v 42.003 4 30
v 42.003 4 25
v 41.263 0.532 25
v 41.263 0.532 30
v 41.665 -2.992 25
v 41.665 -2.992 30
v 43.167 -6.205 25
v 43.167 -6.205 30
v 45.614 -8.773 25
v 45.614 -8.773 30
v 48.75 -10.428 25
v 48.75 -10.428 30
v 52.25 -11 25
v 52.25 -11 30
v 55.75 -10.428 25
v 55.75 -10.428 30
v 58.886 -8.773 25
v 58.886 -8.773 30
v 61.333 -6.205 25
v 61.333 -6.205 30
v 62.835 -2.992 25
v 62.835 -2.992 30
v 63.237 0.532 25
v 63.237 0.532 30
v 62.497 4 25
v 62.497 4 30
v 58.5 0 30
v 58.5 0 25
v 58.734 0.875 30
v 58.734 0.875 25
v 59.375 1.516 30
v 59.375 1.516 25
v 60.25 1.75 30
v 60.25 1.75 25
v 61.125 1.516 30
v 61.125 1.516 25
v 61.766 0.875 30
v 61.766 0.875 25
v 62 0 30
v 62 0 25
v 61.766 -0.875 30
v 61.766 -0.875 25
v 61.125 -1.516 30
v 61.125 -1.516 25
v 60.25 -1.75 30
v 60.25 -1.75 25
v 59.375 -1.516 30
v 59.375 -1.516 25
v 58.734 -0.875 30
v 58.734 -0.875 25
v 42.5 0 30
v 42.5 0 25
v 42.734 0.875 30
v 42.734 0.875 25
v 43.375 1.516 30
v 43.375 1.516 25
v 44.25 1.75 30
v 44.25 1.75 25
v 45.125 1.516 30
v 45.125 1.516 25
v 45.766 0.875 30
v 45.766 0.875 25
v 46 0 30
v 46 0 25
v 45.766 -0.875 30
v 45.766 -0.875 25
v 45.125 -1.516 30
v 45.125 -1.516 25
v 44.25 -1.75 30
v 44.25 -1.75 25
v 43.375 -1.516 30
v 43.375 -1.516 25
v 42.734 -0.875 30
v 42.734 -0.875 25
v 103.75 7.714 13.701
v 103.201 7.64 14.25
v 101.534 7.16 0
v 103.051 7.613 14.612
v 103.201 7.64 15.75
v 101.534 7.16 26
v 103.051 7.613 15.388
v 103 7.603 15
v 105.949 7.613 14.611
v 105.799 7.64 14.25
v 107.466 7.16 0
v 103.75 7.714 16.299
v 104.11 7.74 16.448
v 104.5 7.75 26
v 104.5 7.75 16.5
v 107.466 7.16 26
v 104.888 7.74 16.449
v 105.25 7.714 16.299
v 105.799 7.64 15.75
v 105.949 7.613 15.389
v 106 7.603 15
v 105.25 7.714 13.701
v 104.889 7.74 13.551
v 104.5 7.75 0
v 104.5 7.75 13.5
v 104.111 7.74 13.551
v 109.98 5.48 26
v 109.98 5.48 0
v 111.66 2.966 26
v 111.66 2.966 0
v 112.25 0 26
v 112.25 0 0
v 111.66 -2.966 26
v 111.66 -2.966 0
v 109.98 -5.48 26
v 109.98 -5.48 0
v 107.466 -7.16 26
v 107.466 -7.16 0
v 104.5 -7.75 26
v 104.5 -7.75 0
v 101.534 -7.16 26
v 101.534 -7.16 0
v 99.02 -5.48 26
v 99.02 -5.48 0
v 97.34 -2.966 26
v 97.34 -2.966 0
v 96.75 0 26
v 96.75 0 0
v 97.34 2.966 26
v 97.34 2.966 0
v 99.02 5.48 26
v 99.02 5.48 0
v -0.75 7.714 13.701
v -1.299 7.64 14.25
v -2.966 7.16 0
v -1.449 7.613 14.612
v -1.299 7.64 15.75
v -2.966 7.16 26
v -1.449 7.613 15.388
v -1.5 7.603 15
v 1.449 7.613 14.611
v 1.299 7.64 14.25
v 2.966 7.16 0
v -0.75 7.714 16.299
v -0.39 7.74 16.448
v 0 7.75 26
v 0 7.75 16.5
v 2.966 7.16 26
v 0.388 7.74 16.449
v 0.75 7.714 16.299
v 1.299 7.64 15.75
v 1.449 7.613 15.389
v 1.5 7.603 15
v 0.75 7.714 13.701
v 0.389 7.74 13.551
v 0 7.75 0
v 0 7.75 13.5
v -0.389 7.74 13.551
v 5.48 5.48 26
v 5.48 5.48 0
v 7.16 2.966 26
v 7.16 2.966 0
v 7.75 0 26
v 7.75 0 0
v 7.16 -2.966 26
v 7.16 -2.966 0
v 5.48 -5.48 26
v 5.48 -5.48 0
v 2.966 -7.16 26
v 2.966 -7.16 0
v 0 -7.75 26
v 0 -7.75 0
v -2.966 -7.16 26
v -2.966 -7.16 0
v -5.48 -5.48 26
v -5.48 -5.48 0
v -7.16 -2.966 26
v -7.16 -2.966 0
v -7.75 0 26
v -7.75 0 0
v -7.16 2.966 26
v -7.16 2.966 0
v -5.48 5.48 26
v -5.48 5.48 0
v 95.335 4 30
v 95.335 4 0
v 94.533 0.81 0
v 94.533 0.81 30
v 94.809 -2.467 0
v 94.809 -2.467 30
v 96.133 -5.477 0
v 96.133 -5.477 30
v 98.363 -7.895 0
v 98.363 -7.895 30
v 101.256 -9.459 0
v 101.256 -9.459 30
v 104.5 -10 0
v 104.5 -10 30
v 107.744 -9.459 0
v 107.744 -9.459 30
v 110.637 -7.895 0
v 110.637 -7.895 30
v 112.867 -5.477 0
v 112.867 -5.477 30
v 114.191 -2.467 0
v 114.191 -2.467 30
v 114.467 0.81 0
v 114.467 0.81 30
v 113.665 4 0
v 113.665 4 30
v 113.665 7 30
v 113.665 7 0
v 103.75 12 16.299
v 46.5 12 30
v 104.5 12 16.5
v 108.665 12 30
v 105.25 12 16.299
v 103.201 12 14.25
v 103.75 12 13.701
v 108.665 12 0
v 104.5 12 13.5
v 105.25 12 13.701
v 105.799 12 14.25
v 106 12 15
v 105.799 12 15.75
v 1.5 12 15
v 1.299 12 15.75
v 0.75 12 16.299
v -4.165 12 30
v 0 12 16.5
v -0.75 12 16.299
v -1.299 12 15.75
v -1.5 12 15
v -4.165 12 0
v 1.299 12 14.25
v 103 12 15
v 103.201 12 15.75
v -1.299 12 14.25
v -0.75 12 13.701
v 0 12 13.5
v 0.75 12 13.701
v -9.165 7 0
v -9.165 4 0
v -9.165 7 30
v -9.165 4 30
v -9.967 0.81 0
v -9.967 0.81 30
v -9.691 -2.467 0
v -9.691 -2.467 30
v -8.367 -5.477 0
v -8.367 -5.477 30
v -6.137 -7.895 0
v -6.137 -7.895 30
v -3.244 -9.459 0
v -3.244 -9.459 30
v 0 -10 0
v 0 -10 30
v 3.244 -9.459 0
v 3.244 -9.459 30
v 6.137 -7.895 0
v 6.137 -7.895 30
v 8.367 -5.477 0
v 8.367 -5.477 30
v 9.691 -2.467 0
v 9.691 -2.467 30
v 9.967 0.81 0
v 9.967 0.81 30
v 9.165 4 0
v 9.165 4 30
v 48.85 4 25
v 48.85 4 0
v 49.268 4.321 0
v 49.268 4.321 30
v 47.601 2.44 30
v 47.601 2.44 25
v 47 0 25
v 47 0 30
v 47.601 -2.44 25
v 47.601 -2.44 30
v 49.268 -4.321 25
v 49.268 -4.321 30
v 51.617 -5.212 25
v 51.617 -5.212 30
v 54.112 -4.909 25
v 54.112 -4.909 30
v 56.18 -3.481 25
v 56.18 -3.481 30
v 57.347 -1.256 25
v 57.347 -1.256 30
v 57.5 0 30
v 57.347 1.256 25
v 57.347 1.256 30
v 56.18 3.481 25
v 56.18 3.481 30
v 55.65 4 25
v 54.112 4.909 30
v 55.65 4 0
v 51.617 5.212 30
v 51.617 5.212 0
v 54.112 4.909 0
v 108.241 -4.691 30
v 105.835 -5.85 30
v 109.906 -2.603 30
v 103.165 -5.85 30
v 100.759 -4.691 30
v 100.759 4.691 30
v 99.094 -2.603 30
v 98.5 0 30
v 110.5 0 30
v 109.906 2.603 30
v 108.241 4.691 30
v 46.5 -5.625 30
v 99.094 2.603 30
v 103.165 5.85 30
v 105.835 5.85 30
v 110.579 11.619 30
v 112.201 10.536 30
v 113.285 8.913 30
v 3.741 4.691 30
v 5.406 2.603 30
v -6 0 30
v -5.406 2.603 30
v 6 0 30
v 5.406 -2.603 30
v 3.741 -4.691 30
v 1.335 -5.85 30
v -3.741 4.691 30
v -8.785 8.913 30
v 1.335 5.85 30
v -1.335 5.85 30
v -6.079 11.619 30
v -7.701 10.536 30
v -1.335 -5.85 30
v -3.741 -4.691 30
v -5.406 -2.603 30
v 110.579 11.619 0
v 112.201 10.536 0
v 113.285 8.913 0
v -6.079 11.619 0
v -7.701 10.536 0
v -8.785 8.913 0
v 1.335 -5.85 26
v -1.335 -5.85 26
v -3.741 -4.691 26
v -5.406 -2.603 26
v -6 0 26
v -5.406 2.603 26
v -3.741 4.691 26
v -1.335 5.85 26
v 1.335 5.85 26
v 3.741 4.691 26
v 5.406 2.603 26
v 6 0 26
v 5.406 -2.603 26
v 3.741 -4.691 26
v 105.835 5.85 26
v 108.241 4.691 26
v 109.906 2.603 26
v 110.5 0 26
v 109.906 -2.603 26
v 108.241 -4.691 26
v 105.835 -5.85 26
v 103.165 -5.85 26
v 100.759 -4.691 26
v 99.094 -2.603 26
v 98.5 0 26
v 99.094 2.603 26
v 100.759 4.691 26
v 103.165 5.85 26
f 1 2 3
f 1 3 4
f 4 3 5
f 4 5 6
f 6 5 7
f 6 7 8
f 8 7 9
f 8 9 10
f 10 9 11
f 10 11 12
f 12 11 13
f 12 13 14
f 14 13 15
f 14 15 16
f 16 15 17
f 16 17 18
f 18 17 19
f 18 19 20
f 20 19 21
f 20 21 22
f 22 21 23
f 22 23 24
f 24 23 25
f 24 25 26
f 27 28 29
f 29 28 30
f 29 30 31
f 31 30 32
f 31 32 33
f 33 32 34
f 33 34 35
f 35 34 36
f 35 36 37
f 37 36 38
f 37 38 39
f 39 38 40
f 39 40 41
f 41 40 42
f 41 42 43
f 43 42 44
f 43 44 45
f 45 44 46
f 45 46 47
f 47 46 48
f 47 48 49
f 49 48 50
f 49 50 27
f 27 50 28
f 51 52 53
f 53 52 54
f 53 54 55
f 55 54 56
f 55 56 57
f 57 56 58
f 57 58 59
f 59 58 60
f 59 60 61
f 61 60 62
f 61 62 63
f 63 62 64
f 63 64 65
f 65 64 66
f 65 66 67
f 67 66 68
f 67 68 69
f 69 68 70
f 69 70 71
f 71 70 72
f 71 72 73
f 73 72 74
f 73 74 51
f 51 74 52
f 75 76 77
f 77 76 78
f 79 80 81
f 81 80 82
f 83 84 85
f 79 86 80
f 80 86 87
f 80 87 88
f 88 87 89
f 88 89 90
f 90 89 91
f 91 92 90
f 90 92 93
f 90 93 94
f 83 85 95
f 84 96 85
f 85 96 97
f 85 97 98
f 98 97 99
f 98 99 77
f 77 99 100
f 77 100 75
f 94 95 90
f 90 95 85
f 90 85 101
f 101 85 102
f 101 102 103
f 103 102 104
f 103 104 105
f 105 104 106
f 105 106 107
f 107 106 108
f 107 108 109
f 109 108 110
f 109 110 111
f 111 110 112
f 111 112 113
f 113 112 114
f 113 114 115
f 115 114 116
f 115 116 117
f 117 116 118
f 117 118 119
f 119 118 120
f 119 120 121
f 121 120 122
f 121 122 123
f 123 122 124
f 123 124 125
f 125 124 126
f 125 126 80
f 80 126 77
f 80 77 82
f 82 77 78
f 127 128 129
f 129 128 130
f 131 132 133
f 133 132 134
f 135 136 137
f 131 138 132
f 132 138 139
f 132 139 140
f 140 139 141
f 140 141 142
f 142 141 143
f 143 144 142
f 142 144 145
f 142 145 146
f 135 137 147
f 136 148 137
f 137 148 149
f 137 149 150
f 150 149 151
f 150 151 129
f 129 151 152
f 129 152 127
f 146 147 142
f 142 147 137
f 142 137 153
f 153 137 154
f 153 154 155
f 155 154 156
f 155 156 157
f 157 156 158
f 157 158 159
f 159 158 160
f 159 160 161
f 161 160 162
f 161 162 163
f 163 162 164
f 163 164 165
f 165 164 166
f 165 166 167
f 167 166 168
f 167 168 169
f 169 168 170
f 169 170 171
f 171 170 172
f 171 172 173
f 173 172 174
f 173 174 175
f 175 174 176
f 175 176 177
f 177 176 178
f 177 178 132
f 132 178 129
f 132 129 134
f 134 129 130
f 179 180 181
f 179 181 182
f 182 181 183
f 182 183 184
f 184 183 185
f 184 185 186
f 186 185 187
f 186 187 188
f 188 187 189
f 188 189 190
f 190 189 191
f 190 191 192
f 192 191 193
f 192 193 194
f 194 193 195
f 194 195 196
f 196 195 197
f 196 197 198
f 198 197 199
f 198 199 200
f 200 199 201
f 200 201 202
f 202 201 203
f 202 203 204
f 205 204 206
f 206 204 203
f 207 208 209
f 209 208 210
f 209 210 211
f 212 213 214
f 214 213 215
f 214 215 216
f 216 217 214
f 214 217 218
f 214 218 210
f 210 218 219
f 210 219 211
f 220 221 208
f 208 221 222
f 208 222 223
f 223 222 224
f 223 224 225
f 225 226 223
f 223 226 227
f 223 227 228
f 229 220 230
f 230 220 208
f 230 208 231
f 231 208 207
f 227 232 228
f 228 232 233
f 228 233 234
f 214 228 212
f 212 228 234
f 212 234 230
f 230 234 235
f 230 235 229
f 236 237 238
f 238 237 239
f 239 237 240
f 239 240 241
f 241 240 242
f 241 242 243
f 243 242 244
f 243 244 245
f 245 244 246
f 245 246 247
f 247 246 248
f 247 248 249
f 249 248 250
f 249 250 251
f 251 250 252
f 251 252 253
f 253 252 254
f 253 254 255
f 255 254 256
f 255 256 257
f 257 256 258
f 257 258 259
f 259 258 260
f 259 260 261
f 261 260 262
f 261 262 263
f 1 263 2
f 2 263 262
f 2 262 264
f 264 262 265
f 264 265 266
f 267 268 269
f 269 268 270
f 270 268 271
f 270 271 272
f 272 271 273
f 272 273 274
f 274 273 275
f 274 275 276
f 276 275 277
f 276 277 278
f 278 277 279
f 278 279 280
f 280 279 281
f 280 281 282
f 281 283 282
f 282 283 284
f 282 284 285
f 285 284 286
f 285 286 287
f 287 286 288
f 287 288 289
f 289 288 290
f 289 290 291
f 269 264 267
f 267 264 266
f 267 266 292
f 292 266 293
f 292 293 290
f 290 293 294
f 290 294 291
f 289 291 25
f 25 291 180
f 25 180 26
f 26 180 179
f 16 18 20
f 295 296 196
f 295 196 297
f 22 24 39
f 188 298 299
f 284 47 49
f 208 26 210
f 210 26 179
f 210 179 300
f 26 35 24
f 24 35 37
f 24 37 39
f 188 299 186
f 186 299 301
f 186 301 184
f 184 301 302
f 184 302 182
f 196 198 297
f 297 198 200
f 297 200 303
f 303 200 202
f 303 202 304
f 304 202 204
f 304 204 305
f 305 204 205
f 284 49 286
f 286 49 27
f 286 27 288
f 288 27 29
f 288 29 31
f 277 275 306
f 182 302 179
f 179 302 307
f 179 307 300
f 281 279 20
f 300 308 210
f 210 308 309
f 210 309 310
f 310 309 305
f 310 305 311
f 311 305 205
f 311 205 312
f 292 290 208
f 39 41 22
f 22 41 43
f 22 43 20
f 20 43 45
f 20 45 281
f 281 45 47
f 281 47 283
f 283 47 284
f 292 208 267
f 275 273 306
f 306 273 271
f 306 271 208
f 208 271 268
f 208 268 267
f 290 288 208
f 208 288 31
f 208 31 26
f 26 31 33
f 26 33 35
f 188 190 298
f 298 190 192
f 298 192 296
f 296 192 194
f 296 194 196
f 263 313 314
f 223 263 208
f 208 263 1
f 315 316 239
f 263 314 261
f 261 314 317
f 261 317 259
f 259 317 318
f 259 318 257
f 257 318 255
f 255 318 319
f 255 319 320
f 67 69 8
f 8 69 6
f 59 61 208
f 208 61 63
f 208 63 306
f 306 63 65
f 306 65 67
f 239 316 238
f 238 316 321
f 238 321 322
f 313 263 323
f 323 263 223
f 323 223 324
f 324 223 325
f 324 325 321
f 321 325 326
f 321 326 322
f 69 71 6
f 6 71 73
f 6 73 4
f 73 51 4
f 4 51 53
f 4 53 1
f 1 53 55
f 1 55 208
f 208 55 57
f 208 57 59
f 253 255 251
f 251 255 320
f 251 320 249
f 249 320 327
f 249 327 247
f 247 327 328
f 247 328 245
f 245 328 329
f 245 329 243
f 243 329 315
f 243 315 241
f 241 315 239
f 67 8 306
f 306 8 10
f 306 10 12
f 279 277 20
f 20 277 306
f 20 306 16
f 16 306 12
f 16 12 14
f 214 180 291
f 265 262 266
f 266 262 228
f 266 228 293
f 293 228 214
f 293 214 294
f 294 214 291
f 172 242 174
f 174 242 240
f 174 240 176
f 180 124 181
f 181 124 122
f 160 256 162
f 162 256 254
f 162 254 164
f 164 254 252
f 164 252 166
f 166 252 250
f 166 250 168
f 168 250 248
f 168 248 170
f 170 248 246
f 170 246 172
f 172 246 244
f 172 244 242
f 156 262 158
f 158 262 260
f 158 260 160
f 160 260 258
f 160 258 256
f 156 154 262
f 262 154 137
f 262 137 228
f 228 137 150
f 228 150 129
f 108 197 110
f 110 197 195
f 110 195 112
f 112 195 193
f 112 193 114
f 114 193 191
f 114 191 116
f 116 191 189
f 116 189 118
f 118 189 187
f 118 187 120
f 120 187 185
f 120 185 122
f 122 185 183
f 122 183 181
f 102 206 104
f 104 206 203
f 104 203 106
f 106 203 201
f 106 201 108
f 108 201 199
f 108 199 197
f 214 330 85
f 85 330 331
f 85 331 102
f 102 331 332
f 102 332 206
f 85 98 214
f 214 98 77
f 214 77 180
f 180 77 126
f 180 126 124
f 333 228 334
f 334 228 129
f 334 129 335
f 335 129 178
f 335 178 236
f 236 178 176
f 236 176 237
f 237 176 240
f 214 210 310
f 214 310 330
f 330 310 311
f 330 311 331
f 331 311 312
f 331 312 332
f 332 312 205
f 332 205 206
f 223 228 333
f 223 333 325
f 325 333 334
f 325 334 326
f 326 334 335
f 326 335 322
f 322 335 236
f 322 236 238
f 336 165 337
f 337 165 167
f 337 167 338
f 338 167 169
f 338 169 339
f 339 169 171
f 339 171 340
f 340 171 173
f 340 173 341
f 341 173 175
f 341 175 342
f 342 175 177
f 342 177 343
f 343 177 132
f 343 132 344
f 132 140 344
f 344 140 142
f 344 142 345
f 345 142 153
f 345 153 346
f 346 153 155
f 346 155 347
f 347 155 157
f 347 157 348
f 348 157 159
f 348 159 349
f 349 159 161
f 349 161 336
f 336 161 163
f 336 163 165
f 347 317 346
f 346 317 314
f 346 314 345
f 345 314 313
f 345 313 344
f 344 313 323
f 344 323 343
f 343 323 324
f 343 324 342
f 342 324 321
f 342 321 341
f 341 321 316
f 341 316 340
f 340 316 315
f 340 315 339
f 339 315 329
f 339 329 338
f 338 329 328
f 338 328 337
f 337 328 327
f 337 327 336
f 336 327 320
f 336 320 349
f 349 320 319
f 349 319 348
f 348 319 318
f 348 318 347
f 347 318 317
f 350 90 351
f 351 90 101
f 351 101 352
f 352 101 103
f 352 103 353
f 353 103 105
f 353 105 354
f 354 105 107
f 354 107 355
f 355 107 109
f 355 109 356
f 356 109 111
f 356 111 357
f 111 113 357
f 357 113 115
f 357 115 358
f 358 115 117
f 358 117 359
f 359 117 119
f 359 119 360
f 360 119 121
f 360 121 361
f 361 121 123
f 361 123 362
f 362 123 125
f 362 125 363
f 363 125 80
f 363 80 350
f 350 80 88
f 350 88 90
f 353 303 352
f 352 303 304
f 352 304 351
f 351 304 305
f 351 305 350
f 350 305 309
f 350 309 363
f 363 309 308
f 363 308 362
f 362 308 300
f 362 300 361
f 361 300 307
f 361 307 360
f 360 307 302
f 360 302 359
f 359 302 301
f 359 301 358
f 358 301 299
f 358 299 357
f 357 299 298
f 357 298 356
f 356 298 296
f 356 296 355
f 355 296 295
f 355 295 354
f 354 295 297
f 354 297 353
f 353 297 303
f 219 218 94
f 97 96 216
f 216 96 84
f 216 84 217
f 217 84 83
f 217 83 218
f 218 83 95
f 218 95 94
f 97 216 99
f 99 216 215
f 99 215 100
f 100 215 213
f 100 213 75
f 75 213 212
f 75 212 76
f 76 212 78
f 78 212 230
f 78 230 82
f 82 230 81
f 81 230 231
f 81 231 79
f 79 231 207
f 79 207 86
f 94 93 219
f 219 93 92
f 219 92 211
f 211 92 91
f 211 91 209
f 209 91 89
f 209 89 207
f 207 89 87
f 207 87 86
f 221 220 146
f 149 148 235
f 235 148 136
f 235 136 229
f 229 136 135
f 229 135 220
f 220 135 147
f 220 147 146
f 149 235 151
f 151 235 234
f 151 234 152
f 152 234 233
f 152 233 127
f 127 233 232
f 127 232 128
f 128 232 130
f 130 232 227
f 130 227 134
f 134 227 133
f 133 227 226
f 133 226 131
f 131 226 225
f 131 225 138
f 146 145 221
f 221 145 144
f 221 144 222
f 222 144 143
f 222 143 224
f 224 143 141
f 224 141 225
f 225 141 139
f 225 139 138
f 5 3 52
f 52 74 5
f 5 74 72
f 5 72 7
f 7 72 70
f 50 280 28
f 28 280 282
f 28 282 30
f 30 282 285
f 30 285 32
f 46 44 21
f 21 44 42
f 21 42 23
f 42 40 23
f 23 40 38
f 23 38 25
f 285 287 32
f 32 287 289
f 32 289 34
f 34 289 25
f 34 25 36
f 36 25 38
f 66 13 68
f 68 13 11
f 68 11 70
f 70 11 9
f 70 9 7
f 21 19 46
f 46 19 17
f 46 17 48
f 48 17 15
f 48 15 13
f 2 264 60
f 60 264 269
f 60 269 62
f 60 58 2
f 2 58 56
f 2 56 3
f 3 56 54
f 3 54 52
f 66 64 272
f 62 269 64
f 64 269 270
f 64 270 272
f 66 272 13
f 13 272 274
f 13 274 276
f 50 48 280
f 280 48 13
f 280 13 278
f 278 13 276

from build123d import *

# Parameters (mm, degrees)
SKETCH1_R           = 5.25
SKETCH1_R_2         = 7.75
SKETCH1_R_3         = 1.75
BOSS_EXTRUDE2_DEPTH = 30
FILLET5_R           = 5
BOSS_EXTRUDE3_START = -4
SKETCH2_R           = 7.75
SKETCH2_R_2         = 6
BOSS_EXTRUDE3_DEPTH = 4
CUT_EXTRUDE1_REACH  = 122.579
SKETCH3_R           = 1.5
CUT_EXTRUDE3_DEPTH  = 25


with BuildPart() as part:
    # Sketch1 → Boss-Extrude2 (new body)
    with BuildSketch(Plane.XY):
        with BuildLine():
            ThreePointArc((-9.16515139, 4), (0, -10), (9.16515139, 4))
            Line((9.16515139, 4), (42.003049234, 4))
            ThreePointArc((42.003049234, 4), (52.25, -11), (62.496950766, 4))
            Line((62.496950766, 4), (95.33484861, 4))
            ThreePointArc((95.33484861, 4), (104.5, -10), (113.66515139, 4))
            Line((113.66515139, 4), (113.66515139, 12))
            Line((113.66515139, 12), (-9.16515139, 12))
            Line((-9.16515139, 12), (-9.16515139, 4))
        make_face()
        with Locations((52.25, 0)):
            Circle(SKETCH1_R, mode=Mode.SUBTRACT)
        Circle(SKETCH1_R_2, mode=Mode.SUBTRACT)
        with Locations((60.25, 0)):
            Circle(SKETCH1_R_3, mode=Mode.SUBTRACT)
        with Locations((44.25, 0)):
            Circle(SKETCH1_R_3, mode=Mode.SUBTRACT)
        with Locations((104.5, 0)):
            Circle(SKETCH1_R_2, mode=Mode.SUBTRACT)
    extrude(amount=BOSS_EXTRUDE2_DEPTH)

    # Fillet5
    fillet5_edges = [part.edges().sort_by_distance(p)[0] for p in [
        (-9.16515139, 12, 15),
        (113.66515139, 12, 15),
    ]]
    fillet(fillet5_edges, radius=FILLET5_R)

    # Sketch2 → Boss-Extrude3 (add)
    # profile 1 of 2: a face of its own
    with BuildSketch(Plane.XY.offset(30).offset(BOSS_EXTRUDE3_START)):
        Circle(SKETCH2_R)
        Circle(SKETCH2_R_2, mode=Mode.SUBTRACT)
    # profile 2 of 2: a face of its own
    with BuildSketch(Plane.XY.offset(30).offset(BOSS_EXTRUDE3_START)):
        with Locations((104.5, 0)):
            Circle(SKETCH2_R)
        with Locations((104.5, 0)):
            Circle(SKETCH2_R_2, mode=Mode.SUBTRACT)
    extrude(amount=BOSS_EXTRUDE3_DEPTH)

    # Sketch3 → Cut-Extrude1 (cut, up to next)
    with BuildSketch(Plane(origin=(0, 12, 0), x_dir=(1, 0, 0), z_dir=(0, 1, 0)), mode=Mode.PRIVATE) as cut_extrude1_sk1:
        with Locations(Location((0, -15, 0), (0, 0, 270))):
            Circle(SKETCH3_R)
    cut_extrude1_tool1 = extrude(cut_extrude1_sk1.sketch, amount=-CUT_EXTRUDE1_REACH, mode=Mode.PRIVATE) & part.part
    # Sketch3 → Cut-Extrude1 (cut, up to next)
    with BuildSketch(Plane(origin=(0, 12, 0), x_dir=(1, 0, 0), z_dir=(0, 1, 0)), mode=Mode.PRIVATE) as cut_extrude1_sk2:
        with Locations(Location((104.5, -15, 0), (0, 0, 270))):
            Circle(SKETCH3_R)
    cut_extrude1_tool2 = extrude(cut_extrude1_sk2.sketch, amount=-CUT_EXTRUDE1_REACH, mode=Mode.PRIVATE) & part.part
    add(cut_extrude1_tool1.solids().sort_by_distance((0, 12, 15))[0], mode=Mode.SUBTRACT)
    add(cut_extrude1_tool2.solids().sort_by_distance((104.5, 12, 15))[0], mode=Mode.SUBTRACT)

    # Sketch5 → Cut-Extrude3 (cut)
    with BuildSketch(Plane(origin=(0, 0, 0), x_dir=(-1, 0, 0), z_dir=(0, 0, -1))):
        with BuildLine():
            Line((-62.496950766, 4), (-42.003049234, 4))
            ThreePointArc((-42.003049234, 4), (-52.25, -11), (-62.496950766, 4))
        make_face()
    extrude(amount=-CUT_EXTRUDE3_DEPTH, mode=Mode.SUBTRACT)


solid = part.part
